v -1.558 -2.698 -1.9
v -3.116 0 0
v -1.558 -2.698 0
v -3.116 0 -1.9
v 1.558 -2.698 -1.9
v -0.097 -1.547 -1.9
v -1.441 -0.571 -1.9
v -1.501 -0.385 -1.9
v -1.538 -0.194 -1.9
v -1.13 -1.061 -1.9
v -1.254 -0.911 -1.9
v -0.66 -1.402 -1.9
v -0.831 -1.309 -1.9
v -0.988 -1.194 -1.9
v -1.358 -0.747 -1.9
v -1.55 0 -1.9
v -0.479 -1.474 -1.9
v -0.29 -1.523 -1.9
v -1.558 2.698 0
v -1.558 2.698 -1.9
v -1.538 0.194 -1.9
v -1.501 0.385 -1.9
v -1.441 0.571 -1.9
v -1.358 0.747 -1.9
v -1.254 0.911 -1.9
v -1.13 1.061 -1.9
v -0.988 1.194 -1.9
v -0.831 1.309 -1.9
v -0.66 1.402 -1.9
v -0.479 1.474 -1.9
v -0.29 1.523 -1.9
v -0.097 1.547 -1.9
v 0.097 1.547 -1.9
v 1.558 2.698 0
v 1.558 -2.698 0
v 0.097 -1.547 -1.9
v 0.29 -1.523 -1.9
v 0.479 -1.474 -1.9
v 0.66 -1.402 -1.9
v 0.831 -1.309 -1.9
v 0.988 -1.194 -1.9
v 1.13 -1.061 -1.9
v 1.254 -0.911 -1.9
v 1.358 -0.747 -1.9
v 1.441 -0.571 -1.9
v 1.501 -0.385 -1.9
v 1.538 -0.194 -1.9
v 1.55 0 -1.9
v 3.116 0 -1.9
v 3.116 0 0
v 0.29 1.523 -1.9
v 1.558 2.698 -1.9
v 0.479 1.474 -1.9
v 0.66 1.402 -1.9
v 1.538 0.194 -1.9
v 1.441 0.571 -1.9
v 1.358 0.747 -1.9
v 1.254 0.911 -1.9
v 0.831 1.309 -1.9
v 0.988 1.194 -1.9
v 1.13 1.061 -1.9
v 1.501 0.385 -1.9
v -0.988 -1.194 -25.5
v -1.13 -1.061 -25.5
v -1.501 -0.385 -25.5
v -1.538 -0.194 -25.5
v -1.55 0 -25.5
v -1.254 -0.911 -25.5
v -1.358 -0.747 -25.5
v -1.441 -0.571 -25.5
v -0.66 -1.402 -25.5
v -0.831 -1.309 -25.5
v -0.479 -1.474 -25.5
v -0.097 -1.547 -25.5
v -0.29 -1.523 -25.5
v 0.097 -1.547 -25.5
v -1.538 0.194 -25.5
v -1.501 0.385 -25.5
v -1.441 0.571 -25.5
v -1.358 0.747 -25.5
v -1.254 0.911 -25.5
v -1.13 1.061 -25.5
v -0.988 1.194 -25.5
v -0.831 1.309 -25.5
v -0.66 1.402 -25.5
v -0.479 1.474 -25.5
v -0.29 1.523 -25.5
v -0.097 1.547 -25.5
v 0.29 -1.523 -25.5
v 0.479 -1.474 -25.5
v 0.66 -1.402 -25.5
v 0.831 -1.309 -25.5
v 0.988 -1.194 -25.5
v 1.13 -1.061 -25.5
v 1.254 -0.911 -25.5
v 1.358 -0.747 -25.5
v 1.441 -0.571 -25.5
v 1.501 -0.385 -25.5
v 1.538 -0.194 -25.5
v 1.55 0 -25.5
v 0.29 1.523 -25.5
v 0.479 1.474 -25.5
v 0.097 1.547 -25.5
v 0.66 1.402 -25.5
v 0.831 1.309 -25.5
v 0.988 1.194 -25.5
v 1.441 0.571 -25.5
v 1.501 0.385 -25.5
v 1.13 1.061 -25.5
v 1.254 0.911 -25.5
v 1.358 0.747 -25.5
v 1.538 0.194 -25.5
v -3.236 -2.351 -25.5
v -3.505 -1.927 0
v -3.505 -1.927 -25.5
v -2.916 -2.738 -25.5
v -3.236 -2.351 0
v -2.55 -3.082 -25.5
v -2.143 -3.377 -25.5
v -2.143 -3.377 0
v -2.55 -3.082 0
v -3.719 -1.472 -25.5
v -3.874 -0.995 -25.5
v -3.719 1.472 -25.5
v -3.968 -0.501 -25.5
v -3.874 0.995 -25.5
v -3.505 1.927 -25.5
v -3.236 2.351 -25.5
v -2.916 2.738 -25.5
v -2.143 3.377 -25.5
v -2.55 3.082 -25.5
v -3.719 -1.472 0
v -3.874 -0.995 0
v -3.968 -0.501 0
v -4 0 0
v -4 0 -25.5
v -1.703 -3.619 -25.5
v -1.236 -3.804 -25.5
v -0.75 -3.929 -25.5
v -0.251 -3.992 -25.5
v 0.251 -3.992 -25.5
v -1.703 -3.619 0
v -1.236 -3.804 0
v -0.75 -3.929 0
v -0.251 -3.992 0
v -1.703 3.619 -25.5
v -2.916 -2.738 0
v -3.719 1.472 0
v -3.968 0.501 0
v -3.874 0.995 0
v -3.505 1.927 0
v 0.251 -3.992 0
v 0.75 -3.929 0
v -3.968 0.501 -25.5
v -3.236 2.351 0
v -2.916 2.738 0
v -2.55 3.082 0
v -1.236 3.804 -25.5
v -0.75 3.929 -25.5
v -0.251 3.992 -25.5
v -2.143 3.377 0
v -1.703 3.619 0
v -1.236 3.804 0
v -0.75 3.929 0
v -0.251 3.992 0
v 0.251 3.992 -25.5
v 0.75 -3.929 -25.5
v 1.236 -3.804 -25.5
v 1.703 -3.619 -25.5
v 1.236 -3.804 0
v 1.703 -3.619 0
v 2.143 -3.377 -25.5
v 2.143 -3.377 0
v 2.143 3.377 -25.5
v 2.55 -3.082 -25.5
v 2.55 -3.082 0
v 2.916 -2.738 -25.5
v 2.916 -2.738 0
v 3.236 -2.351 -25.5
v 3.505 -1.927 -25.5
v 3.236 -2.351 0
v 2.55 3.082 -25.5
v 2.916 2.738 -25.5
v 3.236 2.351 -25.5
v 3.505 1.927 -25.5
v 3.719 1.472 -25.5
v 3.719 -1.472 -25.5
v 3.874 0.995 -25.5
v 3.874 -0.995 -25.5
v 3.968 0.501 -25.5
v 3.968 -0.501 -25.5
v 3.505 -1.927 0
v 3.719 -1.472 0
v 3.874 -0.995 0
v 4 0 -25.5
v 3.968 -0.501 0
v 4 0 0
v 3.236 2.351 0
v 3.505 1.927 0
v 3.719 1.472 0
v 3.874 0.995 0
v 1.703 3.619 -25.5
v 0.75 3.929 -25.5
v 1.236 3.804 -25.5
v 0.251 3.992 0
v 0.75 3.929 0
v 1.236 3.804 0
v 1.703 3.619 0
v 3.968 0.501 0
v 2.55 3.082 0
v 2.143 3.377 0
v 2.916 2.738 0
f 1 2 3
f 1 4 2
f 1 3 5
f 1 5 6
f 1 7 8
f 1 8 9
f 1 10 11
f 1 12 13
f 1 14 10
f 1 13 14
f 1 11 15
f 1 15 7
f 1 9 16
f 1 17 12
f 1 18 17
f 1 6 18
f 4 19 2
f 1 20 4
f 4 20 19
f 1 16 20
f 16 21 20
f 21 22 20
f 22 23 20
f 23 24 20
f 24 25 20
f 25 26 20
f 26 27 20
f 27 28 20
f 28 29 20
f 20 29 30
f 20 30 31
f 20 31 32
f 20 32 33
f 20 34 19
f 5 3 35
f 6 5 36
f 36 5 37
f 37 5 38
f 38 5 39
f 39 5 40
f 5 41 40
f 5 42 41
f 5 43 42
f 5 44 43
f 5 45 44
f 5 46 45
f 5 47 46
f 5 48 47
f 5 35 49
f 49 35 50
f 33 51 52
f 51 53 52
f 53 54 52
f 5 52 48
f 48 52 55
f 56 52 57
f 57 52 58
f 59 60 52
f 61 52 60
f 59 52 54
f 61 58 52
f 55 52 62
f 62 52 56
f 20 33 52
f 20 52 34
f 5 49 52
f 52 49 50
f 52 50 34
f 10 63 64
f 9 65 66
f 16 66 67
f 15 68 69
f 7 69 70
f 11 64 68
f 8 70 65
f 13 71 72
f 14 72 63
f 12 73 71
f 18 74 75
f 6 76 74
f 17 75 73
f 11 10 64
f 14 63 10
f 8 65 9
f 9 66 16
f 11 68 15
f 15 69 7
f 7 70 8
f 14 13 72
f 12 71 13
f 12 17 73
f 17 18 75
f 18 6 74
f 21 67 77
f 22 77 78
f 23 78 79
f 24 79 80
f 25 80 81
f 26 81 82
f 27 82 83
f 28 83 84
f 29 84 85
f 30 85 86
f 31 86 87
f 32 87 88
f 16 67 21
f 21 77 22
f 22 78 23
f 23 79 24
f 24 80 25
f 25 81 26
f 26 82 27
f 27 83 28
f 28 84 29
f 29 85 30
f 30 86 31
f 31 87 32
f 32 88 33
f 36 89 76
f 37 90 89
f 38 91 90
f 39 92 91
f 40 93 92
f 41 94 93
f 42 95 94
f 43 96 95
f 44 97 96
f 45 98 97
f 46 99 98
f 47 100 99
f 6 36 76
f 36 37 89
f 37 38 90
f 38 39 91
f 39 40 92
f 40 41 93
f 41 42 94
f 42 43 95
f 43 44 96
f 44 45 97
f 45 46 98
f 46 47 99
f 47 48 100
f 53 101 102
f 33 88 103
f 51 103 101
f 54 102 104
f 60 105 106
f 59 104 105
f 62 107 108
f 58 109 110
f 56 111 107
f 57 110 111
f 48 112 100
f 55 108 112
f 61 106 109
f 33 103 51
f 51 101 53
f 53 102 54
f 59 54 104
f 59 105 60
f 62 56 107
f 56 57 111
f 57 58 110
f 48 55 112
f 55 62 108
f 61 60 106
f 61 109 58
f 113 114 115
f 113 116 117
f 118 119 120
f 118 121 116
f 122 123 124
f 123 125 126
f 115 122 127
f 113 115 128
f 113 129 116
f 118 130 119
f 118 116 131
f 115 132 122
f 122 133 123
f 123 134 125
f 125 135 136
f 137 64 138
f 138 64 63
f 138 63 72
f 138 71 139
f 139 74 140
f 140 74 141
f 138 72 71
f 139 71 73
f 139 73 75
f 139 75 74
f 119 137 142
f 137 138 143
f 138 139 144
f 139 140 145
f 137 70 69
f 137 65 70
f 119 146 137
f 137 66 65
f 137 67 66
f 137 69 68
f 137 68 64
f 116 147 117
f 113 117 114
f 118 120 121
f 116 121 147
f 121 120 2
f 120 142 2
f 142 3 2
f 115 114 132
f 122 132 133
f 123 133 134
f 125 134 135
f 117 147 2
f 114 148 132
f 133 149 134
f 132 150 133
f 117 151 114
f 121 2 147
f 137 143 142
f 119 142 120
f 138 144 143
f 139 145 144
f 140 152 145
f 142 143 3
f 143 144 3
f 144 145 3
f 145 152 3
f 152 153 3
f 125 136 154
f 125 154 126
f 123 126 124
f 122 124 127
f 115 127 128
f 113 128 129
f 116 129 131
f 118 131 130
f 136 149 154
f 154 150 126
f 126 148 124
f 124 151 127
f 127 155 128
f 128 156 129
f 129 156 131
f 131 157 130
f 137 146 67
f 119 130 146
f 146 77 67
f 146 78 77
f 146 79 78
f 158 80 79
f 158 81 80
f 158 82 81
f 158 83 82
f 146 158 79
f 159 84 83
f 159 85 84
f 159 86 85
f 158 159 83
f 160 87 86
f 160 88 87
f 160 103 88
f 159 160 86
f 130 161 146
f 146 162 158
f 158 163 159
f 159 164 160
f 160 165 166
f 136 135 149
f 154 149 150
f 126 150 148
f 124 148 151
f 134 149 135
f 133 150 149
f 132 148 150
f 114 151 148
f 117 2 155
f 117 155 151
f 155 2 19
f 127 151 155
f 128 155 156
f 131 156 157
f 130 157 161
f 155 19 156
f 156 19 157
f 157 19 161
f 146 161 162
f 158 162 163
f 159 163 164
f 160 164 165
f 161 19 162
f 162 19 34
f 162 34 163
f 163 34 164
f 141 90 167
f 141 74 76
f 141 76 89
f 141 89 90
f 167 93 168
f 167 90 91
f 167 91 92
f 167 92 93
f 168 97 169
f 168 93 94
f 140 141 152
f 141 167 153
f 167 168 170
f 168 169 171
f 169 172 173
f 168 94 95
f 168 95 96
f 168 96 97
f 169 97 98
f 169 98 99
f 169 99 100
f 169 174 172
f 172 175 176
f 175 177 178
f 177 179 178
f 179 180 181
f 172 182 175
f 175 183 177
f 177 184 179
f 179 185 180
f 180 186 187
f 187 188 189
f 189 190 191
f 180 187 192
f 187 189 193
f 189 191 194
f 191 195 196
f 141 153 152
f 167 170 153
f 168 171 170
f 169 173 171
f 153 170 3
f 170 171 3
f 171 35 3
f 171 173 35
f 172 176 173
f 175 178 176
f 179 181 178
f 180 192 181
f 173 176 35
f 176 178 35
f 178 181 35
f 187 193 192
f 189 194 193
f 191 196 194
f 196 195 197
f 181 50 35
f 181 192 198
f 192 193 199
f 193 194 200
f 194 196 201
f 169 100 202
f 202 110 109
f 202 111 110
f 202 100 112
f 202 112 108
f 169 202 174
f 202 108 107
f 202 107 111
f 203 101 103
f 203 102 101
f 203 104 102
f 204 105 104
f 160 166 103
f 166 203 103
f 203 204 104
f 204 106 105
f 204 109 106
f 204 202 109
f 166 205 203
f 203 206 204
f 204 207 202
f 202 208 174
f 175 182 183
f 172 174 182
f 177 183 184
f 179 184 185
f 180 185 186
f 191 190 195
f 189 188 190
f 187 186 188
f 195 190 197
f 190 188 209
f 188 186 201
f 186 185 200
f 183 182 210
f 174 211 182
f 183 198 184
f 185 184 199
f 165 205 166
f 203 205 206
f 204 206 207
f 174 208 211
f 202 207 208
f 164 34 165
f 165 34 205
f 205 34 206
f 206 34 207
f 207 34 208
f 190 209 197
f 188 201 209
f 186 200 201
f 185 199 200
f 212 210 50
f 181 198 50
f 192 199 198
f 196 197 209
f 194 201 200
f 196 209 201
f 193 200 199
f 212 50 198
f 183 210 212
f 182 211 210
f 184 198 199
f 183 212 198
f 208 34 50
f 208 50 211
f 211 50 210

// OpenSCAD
$fn = 50;

difference() {
	union() {
		translate(v = [0, 0, -25.5]) {
			cylinder(h = 28.5, r = 4.0);
		}
	}
	union() {
		translate(v = [0, 0, 0]) {
			rotate(a = [0, 0, 0]) {
				difference() {
					union() {
						translate(v = [0, 0, -1.9]) {
							linear_extrude(height = 1.9) {
								polygon(points = [[3.1158, 0.0], [1.5579000000000005, 2.698361953111554], [-1.5578999999999994, 2.6983619531115544], [-3.1158, 3.815754496783323e-16], [-1.5579000000000014, -2.6983619531115535], [1.557899999999998, -2.6983619531115552]]);
							}
						}
					}
					union();
				}
			}
		}
		#cylinder(h = 3, r = 5.0);
		#translate(v = [0, 0, -100.0]) {
			cylinder(h = 200, r = 1.55);
		}
	}
}
